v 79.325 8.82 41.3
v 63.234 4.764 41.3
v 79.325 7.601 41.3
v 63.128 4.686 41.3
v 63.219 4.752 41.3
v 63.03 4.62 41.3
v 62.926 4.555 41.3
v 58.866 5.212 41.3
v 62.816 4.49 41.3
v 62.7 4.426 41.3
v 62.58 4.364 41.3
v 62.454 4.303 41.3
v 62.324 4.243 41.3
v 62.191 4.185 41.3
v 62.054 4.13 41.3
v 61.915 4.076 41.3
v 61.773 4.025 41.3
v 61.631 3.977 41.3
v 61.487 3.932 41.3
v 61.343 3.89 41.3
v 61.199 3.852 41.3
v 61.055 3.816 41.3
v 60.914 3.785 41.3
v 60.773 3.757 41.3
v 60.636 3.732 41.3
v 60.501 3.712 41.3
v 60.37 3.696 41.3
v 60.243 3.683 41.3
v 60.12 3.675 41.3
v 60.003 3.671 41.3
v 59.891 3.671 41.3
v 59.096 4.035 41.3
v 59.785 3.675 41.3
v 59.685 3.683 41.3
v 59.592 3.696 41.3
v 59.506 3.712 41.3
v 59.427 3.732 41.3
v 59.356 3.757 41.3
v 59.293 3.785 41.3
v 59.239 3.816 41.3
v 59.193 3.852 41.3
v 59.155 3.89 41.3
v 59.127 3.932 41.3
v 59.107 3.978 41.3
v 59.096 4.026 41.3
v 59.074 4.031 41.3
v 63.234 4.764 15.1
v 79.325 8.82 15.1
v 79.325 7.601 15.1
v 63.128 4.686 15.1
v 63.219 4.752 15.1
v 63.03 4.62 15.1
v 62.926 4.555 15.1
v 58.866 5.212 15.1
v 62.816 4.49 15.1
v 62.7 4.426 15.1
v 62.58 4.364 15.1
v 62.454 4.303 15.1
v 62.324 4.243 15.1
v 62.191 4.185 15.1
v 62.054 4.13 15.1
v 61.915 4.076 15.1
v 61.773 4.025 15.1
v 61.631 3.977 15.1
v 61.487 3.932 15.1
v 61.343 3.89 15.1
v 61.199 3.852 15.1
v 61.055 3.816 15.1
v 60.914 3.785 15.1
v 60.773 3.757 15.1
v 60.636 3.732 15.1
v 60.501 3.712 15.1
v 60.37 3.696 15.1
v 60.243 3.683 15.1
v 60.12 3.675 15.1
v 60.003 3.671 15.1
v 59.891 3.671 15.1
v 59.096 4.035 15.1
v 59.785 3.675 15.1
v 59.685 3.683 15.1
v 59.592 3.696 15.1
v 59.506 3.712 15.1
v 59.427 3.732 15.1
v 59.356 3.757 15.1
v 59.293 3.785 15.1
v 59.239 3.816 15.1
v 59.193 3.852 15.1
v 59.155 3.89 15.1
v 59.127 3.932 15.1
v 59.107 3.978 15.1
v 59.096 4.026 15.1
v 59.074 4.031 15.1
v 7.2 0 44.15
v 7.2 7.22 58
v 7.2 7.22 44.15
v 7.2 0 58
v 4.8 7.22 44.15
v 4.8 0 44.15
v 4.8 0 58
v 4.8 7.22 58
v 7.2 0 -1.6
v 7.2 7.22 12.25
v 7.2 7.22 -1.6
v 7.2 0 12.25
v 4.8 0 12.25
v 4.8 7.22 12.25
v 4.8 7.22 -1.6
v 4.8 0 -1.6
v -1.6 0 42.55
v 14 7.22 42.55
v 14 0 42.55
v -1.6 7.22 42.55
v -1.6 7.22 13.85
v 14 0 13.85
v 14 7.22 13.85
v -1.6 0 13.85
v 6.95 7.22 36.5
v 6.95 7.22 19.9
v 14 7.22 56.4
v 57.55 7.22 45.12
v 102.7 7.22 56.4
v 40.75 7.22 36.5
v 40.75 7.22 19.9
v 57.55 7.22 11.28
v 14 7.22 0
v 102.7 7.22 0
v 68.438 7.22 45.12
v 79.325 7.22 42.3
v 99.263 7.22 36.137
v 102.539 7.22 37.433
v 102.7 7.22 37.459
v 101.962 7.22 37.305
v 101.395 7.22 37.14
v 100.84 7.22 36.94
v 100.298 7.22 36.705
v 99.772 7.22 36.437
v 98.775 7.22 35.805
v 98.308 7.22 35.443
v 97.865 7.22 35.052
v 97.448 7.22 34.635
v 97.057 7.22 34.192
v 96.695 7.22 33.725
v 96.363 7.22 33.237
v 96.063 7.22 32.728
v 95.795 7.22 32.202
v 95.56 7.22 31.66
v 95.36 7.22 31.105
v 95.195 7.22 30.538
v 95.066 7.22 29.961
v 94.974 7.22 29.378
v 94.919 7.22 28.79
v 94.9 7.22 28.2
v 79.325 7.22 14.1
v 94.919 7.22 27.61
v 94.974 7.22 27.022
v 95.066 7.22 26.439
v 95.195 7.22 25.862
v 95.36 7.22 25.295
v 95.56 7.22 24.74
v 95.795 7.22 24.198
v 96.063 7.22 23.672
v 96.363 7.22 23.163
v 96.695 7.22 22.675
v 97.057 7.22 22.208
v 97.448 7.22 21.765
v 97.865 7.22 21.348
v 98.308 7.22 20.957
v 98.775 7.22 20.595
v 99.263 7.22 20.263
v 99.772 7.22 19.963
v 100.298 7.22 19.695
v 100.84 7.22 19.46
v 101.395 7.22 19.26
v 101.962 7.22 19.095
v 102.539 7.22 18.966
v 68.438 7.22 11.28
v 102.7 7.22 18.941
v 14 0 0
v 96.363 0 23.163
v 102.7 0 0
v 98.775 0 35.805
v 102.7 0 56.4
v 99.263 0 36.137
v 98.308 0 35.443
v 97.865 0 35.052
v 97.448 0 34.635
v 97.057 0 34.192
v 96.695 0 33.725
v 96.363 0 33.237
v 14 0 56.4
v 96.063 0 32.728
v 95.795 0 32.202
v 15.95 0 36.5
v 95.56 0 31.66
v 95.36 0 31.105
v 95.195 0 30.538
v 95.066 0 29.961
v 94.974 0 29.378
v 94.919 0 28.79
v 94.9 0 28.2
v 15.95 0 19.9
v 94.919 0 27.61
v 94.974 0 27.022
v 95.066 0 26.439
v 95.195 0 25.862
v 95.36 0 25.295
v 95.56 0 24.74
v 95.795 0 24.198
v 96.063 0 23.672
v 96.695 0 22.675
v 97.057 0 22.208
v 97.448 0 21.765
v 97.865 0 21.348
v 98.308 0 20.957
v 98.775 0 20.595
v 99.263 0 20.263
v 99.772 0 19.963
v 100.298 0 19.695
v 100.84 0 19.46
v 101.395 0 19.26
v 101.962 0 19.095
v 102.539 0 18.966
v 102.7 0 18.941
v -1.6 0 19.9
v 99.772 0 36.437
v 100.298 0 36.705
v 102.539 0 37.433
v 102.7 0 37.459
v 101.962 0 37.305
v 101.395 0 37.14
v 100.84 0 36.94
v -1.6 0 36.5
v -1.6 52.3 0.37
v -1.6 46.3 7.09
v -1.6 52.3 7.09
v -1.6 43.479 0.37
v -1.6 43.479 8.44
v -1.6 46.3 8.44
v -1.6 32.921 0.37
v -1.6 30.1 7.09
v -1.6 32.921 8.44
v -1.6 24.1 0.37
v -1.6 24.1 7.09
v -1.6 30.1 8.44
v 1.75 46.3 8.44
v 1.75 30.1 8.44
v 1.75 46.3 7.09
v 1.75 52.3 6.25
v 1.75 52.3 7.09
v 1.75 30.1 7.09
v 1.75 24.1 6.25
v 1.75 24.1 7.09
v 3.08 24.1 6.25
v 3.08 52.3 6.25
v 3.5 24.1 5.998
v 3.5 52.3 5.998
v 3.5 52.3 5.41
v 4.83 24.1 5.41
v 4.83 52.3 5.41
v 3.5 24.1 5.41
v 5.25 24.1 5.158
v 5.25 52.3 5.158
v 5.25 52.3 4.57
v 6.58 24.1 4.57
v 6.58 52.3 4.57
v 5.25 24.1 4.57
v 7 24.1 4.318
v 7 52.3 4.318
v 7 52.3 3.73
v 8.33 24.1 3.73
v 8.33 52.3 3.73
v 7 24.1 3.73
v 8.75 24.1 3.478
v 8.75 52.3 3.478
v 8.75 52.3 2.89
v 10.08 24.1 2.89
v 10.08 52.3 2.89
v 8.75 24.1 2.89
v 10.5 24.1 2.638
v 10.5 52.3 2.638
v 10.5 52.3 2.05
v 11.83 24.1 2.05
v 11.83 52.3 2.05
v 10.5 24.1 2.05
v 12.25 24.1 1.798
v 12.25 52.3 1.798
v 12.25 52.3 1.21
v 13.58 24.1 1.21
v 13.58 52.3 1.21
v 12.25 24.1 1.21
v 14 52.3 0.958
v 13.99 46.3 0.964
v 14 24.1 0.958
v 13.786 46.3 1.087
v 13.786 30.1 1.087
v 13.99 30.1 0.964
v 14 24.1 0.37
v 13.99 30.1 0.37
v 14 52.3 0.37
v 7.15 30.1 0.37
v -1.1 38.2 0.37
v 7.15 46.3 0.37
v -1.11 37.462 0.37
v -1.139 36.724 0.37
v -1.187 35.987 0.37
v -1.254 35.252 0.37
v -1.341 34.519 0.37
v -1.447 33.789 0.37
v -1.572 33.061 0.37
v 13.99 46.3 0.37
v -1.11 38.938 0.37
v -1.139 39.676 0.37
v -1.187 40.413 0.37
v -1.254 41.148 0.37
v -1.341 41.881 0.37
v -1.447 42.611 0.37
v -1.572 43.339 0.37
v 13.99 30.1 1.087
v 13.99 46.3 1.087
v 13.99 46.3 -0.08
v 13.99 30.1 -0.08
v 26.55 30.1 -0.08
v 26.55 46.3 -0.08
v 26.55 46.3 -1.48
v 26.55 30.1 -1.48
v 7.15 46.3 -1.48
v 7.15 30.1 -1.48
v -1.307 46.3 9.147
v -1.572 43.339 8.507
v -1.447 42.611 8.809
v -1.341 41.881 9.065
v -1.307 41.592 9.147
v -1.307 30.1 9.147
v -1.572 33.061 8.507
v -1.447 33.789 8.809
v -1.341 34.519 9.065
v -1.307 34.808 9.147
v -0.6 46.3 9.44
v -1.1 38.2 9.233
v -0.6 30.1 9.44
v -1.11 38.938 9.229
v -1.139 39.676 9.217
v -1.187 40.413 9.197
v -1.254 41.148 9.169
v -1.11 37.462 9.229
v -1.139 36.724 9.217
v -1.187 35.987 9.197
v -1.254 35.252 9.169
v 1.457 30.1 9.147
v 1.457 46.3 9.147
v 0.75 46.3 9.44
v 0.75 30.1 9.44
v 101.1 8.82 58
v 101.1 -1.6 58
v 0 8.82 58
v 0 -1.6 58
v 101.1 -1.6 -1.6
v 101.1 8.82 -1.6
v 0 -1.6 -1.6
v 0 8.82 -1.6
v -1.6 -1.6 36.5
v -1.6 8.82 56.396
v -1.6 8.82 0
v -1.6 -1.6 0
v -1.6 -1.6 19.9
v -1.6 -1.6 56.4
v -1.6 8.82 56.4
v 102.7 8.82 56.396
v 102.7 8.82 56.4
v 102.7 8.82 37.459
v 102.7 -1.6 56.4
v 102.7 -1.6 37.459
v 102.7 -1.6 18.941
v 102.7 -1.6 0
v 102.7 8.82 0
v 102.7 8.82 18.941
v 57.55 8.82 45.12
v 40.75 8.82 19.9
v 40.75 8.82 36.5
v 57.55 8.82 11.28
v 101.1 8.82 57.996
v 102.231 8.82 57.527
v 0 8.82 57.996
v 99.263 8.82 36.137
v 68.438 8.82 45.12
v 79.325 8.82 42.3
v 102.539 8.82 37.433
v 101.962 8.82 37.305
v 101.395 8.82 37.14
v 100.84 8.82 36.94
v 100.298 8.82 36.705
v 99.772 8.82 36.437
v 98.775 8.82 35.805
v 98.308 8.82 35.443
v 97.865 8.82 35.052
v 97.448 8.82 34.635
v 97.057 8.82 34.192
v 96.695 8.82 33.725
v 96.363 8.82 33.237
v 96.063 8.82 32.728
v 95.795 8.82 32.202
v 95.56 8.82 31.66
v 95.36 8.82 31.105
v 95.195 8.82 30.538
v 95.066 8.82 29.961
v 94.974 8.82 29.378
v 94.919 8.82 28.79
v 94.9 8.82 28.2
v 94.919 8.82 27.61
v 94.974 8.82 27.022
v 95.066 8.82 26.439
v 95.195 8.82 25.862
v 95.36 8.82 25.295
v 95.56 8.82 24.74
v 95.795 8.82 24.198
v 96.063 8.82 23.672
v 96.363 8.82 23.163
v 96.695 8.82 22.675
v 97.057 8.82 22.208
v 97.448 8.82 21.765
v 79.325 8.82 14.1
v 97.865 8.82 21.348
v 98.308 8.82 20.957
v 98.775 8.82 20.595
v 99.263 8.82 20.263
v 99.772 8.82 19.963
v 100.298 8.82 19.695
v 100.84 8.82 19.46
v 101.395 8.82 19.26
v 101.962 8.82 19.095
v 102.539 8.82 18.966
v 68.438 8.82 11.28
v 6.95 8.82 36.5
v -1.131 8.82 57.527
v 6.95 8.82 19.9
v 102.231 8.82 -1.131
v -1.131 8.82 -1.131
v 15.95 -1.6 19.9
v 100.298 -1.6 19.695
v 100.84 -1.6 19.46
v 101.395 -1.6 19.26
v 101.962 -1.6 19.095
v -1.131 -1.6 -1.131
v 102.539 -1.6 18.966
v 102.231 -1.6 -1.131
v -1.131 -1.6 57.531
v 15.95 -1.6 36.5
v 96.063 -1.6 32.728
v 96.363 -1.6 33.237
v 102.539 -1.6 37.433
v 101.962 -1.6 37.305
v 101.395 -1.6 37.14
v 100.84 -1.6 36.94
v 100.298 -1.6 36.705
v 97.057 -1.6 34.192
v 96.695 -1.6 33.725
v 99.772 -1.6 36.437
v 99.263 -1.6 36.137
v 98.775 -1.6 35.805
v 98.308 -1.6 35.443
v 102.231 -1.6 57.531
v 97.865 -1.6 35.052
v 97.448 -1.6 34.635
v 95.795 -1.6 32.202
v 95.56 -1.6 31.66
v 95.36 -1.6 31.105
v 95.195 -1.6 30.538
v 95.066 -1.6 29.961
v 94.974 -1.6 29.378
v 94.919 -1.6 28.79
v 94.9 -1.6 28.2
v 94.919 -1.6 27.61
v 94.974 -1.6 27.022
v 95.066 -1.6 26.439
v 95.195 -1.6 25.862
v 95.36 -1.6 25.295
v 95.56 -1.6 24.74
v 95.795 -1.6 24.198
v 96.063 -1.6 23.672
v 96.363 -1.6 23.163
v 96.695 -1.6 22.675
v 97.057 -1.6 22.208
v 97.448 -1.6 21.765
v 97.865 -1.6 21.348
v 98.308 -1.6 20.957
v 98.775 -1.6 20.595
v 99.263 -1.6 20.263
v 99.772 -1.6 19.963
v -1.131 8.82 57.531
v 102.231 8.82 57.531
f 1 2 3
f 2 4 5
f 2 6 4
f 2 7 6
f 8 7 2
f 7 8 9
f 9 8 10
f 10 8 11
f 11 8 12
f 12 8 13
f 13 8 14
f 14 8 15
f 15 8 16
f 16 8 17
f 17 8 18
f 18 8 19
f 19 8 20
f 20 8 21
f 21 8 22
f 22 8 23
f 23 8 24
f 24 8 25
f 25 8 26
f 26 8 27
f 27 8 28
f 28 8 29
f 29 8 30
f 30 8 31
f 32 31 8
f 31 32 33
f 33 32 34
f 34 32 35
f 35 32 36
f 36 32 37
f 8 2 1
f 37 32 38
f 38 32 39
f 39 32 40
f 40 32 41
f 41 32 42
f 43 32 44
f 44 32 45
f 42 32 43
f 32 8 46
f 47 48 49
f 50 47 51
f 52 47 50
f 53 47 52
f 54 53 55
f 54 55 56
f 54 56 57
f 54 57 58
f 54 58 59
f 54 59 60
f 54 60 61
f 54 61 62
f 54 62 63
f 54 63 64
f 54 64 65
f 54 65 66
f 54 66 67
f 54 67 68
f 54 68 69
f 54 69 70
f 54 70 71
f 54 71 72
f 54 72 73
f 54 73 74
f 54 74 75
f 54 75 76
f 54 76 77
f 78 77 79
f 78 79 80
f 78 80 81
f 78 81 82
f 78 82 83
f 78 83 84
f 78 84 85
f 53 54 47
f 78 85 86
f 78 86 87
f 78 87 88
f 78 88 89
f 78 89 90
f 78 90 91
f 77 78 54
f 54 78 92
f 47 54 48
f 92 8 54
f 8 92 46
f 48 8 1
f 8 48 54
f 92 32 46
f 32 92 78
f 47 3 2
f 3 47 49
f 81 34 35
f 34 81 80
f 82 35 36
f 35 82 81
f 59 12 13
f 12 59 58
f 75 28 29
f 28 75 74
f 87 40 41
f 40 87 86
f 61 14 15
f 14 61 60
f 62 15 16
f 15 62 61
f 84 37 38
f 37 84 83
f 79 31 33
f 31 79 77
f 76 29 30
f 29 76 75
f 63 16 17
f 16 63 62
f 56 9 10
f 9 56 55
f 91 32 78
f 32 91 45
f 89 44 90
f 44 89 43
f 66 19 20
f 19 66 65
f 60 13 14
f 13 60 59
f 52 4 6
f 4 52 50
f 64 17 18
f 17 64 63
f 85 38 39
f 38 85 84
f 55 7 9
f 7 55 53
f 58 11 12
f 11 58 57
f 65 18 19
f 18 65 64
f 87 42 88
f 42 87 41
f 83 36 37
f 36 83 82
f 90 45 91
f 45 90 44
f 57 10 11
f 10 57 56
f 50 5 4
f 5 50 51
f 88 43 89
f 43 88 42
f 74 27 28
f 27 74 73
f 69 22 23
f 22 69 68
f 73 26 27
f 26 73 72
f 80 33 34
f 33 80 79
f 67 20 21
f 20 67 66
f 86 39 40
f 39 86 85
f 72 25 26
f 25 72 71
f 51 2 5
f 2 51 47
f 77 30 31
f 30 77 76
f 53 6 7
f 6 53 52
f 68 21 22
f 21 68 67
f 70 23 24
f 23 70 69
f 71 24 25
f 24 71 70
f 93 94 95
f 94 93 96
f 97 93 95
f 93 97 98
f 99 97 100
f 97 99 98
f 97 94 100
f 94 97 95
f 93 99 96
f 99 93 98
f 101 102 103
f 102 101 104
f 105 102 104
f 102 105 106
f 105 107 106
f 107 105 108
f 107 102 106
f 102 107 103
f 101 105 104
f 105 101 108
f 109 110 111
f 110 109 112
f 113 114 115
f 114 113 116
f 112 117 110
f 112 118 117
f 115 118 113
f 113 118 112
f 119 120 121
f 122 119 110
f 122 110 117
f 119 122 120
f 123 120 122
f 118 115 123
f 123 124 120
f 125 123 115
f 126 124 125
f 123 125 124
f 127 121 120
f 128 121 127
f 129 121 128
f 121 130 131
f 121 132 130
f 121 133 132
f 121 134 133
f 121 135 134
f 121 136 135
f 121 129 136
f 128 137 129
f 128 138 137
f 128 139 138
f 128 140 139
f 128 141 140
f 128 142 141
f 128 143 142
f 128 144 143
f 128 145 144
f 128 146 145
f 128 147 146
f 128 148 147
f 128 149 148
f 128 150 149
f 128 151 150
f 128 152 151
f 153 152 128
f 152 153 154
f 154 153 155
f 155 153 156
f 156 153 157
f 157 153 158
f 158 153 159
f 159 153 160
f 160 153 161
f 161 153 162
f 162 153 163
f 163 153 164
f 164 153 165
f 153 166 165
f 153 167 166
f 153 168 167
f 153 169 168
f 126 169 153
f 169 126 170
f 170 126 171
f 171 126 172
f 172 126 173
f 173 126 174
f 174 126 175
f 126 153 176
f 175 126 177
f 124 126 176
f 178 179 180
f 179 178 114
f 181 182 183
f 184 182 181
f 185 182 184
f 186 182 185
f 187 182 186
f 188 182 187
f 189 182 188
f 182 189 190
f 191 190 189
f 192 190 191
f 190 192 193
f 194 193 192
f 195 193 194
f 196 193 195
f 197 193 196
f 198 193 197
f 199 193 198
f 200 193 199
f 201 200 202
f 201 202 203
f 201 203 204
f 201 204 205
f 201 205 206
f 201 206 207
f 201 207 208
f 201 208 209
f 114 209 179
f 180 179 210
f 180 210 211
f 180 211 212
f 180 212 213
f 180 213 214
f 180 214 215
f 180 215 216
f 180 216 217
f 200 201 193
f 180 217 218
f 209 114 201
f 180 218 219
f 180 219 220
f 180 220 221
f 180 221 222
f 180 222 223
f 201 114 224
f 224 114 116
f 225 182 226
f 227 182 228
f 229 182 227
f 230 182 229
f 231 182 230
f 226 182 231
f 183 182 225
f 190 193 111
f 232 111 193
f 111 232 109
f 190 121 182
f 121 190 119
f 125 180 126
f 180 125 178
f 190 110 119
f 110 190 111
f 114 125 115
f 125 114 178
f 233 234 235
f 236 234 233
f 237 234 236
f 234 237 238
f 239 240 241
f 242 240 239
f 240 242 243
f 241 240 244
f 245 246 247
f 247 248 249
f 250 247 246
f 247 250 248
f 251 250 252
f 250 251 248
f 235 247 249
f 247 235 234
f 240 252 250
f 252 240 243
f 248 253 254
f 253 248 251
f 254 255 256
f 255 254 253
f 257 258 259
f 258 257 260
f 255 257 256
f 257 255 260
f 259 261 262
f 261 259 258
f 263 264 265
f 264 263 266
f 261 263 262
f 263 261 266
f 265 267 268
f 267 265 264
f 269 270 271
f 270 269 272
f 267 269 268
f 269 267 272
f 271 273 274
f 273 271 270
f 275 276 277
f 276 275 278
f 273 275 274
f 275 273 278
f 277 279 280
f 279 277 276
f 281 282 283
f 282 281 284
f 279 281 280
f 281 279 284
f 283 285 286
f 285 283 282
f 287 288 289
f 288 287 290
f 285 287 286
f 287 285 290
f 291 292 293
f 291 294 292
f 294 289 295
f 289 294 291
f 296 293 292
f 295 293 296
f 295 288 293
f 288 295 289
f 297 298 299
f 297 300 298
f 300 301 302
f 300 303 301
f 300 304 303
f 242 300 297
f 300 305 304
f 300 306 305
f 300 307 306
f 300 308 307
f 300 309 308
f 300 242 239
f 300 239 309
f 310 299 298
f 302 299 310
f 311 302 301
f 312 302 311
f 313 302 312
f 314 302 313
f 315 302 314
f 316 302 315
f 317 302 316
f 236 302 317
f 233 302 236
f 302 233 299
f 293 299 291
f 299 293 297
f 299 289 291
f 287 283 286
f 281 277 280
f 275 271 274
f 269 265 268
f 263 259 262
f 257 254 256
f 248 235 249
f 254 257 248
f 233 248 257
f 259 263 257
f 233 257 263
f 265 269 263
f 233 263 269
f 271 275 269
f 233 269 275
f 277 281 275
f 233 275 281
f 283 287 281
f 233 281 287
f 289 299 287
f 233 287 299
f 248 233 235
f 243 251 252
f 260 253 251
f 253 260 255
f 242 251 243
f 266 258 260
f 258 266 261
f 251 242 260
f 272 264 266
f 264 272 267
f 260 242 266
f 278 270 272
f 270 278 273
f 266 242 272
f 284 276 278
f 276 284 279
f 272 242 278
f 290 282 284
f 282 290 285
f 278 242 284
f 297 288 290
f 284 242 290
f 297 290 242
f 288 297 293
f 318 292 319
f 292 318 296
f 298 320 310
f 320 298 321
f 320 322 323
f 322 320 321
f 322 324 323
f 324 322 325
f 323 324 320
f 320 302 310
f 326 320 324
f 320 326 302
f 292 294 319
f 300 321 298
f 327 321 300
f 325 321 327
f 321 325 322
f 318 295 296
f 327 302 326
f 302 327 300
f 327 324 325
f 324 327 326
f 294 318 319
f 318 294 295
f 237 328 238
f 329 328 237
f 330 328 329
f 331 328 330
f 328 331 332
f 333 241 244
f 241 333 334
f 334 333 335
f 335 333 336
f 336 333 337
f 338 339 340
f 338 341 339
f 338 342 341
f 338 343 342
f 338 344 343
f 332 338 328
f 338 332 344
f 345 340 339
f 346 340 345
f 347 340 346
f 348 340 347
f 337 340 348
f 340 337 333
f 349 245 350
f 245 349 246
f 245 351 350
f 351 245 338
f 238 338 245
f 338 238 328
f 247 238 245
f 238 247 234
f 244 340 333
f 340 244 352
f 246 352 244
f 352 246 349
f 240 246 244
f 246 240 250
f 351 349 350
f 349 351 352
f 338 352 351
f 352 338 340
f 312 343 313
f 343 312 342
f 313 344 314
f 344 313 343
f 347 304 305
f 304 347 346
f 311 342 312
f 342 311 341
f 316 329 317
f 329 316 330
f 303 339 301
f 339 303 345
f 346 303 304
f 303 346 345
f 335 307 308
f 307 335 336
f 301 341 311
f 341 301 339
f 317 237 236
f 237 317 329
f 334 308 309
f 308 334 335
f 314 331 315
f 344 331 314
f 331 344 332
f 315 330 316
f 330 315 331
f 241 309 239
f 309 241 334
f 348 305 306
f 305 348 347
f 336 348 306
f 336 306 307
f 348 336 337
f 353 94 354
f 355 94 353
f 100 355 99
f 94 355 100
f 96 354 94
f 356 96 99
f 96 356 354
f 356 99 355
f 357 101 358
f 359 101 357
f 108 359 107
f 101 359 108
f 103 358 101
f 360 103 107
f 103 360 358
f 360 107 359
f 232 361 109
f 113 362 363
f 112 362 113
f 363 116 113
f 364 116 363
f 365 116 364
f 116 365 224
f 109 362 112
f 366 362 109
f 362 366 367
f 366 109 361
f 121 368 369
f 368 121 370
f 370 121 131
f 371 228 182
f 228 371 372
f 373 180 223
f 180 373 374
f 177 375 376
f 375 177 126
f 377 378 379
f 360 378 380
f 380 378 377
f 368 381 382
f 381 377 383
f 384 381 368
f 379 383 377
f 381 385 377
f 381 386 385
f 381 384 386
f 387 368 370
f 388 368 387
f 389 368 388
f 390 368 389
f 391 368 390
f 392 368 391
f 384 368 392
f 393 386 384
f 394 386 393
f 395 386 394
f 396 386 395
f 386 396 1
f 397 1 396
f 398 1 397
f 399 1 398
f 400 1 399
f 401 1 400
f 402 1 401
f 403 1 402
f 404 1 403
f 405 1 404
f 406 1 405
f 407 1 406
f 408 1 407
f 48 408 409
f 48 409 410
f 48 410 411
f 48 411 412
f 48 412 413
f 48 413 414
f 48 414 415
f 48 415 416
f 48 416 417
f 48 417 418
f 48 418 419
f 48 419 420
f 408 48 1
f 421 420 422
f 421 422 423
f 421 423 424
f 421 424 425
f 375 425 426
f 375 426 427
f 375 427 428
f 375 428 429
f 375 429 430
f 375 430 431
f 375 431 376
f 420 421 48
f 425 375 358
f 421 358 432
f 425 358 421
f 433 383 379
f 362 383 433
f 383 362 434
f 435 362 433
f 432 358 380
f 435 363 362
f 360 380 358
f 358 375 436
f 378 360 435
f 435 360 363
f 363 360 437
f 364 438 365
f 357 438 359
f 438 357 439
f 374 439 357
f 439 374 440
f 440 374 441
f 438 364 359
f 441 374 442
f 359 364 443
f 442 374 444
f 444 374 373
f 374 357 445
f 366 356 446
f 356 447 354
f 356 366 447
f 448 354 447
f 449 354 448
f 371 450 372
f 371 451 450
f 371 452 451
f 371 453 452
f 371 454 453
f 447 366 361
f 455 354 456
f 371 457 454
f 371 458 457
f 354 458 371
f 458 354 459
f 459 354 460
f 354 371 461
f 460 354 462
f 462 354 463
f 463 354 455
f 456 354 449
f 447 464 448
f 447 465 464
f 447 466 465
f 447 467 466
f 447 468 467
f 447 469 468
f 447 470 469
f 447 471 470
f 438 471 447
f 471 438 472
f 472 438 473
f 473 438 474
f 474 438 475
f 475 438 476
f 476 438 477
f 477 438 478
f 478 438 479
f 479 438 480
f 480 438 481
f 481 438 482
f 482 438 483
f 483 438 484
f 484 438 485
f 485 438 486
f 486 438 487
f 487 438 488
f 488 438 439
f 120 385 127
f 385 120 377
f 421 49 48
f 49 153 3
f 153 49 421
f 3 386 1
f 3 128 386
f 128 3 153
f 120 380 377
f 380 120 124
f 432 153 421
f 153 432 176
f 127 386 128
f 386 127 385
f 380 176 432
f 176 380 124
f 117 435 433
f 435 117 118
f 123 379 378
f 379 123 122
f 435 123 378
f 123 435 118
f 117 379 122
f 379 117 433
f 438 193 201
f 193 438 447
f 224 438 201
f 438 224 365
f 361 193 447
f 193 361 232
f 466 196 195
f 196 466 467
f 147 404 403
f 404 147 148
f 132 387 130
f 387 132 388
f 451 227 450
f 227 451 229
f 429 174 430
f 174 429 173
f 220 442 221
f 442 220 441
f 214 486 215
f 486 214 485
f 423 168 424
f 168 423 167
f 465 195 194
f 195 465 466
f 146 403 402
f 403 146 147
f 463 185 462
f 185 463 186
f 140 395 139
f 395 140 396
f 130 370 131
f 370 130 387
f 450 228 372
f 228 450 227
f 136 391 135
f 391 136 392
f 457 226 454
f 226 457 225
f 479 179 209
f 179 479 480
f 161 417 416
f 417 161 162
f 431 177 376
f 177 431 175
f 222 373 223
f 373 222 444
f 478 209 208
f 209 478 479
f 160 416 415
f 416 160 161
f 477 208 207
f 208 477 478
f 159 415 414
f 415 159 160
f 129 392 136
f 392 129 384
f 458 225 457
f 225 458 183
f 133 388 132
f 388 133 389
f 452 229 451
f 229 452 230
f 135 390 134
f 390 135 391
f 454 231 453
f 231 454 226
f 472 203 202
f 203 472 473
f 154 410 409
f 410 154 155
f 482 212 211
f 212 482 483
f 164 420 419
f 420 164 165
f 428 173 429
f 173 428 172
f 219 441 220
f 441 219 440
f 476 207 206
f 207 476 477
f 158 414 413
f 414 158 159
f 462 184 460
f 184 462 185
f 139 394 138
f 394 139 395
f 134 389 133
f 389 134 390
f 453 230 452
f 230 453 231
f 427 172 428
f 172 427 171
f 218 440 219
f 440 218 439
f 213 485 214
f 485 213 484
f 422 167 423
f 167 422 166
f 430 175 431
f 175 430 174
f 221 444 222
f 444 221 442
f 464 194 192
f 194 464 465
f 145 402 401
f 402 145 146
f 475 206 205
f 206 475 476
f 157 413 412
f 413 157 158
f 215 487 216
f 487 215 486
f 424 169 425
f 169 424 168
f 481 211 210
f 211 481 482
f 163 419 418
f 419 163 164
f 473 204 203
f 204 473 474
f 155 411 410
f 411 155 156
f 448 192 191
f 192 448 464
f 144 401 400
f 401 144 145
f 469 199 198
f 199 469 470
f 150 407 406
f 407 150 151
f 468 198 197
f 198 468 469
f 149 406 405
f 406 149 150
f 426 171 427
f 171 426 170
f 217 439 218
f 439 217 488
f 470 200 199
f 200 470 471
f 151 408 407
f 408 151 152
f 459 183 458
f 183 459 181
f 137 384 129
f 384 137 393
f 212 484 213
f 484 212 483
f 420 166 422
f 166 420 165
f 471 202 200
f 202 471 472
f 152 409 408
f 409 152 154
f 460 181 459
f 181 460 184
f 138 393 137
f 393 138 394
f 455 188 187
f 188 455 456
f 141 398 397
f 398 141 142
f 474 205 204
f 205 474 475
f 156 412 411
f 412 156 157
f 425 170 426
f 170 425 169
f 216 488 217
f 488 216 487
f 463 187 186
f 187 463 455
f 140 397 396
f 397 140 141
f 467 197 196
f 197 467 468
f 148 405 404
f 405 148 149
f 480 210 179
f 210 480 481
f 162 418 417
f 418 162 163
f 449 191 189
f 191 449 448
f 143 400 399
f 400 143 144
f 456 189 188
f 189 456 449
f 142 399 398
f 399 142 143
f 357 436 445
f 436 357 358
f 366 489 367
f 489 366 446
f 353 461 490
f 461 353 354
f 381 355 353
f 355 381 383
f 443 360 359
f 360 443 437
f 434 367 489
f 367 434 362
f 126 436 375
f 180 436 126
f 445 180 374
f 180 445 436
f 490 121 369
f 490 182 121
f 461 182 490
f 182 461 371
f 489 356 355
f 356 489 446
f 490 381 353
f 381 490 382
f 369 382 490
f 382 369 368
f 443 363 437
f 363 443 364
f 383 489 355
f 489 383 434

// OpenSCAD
// file: ../chamferer.scad
INFINITY = 10000;
ATOM = .01;

module chamfer_tool(r, fn, tool,
                    ax, ay, az,
                    ax2, ay2, az2,
                    ax3, ay3, az3) {
    rotate([ax3, ay3, az3])
    rotate([ax2, ay2, az2])
    rotate([ax, ay, az]) {
        if (tool=="sphere") {
            sphere(r, $fn=fn);
        }
        else if (tool=="hemisphere-up") {
            intersection() {
                sphere(r, $fn=fn);
                cylinder(r=r*2, h=r*2);
            }
        }
        else if (tool=="hemisphere-down") {
            difference() {
                sphere(r, $fn=fn);
                cylinder(r=r*2, h=r*2);
            }
        }
        else if (tool=="cone") {
            cylinder(r, r, 0, $fn=fn);
            scale([1, 1, -1])
            cylinder(r, r, 0, $fn=fn);
        }
        else if (tool=="cone-up") {
            cylinder(r, r, 0, $fn=fn, center=true);
        }
        else if (tool=="cone-down") {
            scale([1, 1, -1])
            cylinder(r, r, 0, $fn=fn, center=true);
        }
        else if (tool=="octahedron") {
            resize([r*2, r*2, r*2]) {
                cylinder(r, r, 0, $fn=4);
                scale([1, 1, -1])
                cylinder(r, r, 0, $fn=4);
            }
        }
        else if (tool=="pyramid") {
            resize([r*2, r*2, r*2]) {
                cylinder(r, r, 0, center=true, $fn=4);
            }
        }
        else if (tool=="rpyramid") {
            resize([r*2, r*2, r*2]) {
                cylinder(r, 0, r, center=true, $fn=4);
            }
        }
        else if (tool=="cylinder-z" || tool=="cylinder") {
            cylinder(r=r, h=ATOM, $fn=fn, center=true);
        }
        else if (tool=="cylinder-x") {
            rotate([0, 90, 0])
            cylinder(r=r, h=ATOM, $fn=fn, center=true);
        }
        else if (tool=="cylinder-y") {
            rotate([90, 0, 0])
            cylinder(r=r, h=ATOM, $fn=fn, center=true);
        }
        else if (tool=="cube") {
            cube(r*2, center=true);
        }
        else if (tool=="plate-y") {
            cube([r*2, ATOM, r*2], center=true);
        }
        else if (tool=="plate-z") {
            cube([r*2, r*2, ATOM], center=true);
        }
        else {
            assert(false, str("Unknown tool: ", tool));
        }
    }
}

module shrinker(r, tool, fn,
                ax, ay, az,
                ax2, ay2, az2,
                ax3, ay3, az3) {
    if (!r) {
        children();
    }
    else {
        // re-invert+grow = fillet
        difference() {
            cube(INFINITY/2, center=true);

            // invert+grow = carve
            minkowski() {
                difference() {
                    cube(INFINITY, center=true);
                    children();
                }
                //cube(r, center=true);
                chamfer_tool(r, fn, tool,
                             ax, ay, az,
                             ax2, ay2, az2,
                             ax3, ay3, az3);
            }
        }
    }
}

module chamferer(r, tool="sphere", fn=8, shrink=true, grow=true,
                 ax=0, ay=0, az=0,
                 ax2=0, ay2=0, az2=0,
                 ax3=0, ay3=0, az3=0,
) {
    if (!r) {
        children();
    }
    else {
        minkowski() {
            if (shrink)
                shrinker(r, tool, fn,
                         ax, ay, az,
                         ax2, ay2, az2,
                         ax3, ay3, az3) children();
            else
                children();
            
            if (grow)
                chamfer_tool(r, fn, tool,
                             ax, ay, az,
                             ax2, ay2, az2,
                             ax3, ay3, az3);
        }
    }
}



cube(50);

translate([70, 0, 0])
chamferer(5, "hemisphere-up", $preview? 6*4 : 30)
//shrinker(5, "sphere", $preview? 6*4 : 30)
cube(50);

translate([70*2, 0, 0])
chamferer(5, "octahedron", grow=false)
cube(50);
// main file
use <../chamferer.scad>

N_CARDS  =  8;

PLAY_H   =  1.5;
PLAY_V   =  0.5;
GAP      =  1.0;

CARD_TH  =  4.2 / 5;
CARD_L   = 85.6 + PLAY_H;
CARD_W   = 54.9 + PLAY_H;
CARDS_T  = N_CARDS * CARD_TH + PLAY_V;

LEVER_W  = 14;
LEVER_D  = 10;
LEVER_TH =  4;
LEVER_CH =  1.6;

STOPPER_H = CARD_W / 2;

TH = .4*4;
TH2 = .4*3;

$fn = $preview ? 20 : 100;
ATOM = 0.01;

module cards_chamber(xx=0) {
    cube([CARD_L + xx, CARDS_T, CARD_W]);
}


module stopper(gap_z=false) {
    // stopper
    h = STOPPER_H + (gap_z ? PLAY_V : 0);

    translate([-TH*2, 0, CARD_W/2 - h/2])
    cube([LEVER_W + TH*2 + ATOM, CARDS_T, h]);
    
    if (gap_z) {
        translate([TH*3, 0, CARD_W/2 - h/2 + h + TH])
        cube([TH*1.5, CARDS_T, h]);

        translate([TH*3, 0, CARD_W/2 - h/2 - h - TH])
        cube([TH*1.5, CARDS_T, h]);
    }
}

module chamber() {
    translate([LEVER_W, 0, 0])
    cards_chamber(xx=TH*2);

    stopper(gap_z=true);
}

module cards_holder_0() {
    clip_x = LEVER_W + CARD_L*.5;
    clip_l = CARD_L/4;
    clip_a = 6 + 4;

    difference() {
        // block
        chamferer(TH, "cube", shrink=false)
        cards_chamber(xx=LEVER_W);

        // chamber
        chamber();

        // cards ghost
        //%translate([LEVER_W, 0, 0]) cards_chamber();
        
        // clip hollowing
        hull() {
            translate([clip_x, CARDS_T/2, CARD_W*.25])
            cube([clip_l, CARDS_T, CARD_W/2]);

            h = CARD_W*.6;
            translate([clip_x, CARDS_T/2, (CARD_W-h)/2])
            cube([clip_l/2, CARDS_T, h]);
        }
        
        // rails
        chamferer(.2, "cube", shrink=false)
        rails(extend=true);
        
        
        // finger
        translate([LEVER_W+CARD_L + TH*2, 0, CARD_W/2])
        rotate([90, 0, 0])        
        cylinder(d=CARD_W/3, h=CARD_W, center=true);
    }
    
    // clip
    translate([clip_x + clip_l + GAP*0, CARDS_T, CARD_W/4 + GAP])
    translate([0, TH, 0])
    rotate([0, 0, clip_a])
    translate([-clip_l+GAP, -TH2, 0]) {
        h = CARD_W/2 - GAP*2;

        cube([clip_l-GAP, TH2, h]);

        translate([TH2*2, TH2*.23, 0])
        rotate([0, 0, 8])
        scale([2, .65, 1]) cylinder(d=TH2*2, h=h);
    }
}

module cards_holder() {
    intersection() {
        cards_holder_0();

        chamferer($preview? 0: TH, "cylinder-y")
        //chamferer($preview? 0: TH/2)
        hull()
        cards_holder_0();
    }
}

module slider() {
    difference() {
        union() {
            intersection() {
                // steps
                for (i=[0:N_CARDS-1]) {
                    l = LEVER_W - (N_CARDS-1 -i)/N_CARDS * LEVER_W + TH;

                    hull() {
                        k = i==0 ? 1 : .7;
                        translate([-TH, PLAY_V/2 + i*CARD_TH + CARD_TH*(1-k), 0])
                        cube([l, CARD_TH*k, CARD_W]);

                        translate([-TH, PLAY_V/2 + i*CARD_TH, 0])
                        cube([l-CARD_TH/2, CARD_TH/2, CARD_W]);


                    }
                }

                // fit into stopper
                chamferer(1, fn=4)
                translate([.3*sin(45), 0, 0]) hull() {
                    stopper();
                    translate([1, 0, 0])
                    stopper();
                }
            }
            rails();
        }

        // mark
        d = CARD_W;
        translate([-TH-d/2 + .5, CARDS_T/2, CARD_W/2])
        rotate([90, 0, 0])
        cylinder(d=d, h=CARDS_T*3, center=true, $fn=60*4);
    }
}

module rails(extend=false) {
    // rails
    h = STOPPER_H - 12; //16 - 4;
    l = LEVER_W * (extend ? 2.5 : 1.5) - TH;
    difference() {
        //chamferer(extend ? 0 : TH, "cone-down")
        translate([PLAY_H/2 + TH*4, CARDS_T - PLAY_V/3 -TH*.5, CARD_W/2 - h/2])
        cube([l, TH*2 + (extend ? 1 : -TH/2+PLAY_V/3), h]);
 
        if (!extend)
            translate([LEVER_W + TH*2-ATOM, .2, 0])
            chamber();
    }

    // knob
    l2 = TH + LEVER_W/N_CARDS + (extend ? LEVER_W : 0);
    th = TH*3 + PLAY_V;
    chamferer(extend ? 0 : 1, "cylinder")
    translate([-TH, TH*2-th, CARD_W/2-h/2])
    cube([l2, th, h]);
}

module wallet() {
    cards_holder();
}

pv = false && $preview;
/*
translate([pv ? 0 : LEVER_W*0,
           pv ? 0 : 30,
           pv ? 0 : -(CARD_W - STOPPER_H)/2 - TH])
*/

translate([0, 10, 7.34])
rotate([-90, 0, 0])
slider();

intersection() {
    wallet();

    //if ($preview) cylinder(d=CARD_L*4, h=CARD_W, center=true);

    //translate([-20, 1, -10]) cube(1000);
    //translate([0, 0, -TH]) color("red") cylinder(d=CARD_L*4, h=7);
}
